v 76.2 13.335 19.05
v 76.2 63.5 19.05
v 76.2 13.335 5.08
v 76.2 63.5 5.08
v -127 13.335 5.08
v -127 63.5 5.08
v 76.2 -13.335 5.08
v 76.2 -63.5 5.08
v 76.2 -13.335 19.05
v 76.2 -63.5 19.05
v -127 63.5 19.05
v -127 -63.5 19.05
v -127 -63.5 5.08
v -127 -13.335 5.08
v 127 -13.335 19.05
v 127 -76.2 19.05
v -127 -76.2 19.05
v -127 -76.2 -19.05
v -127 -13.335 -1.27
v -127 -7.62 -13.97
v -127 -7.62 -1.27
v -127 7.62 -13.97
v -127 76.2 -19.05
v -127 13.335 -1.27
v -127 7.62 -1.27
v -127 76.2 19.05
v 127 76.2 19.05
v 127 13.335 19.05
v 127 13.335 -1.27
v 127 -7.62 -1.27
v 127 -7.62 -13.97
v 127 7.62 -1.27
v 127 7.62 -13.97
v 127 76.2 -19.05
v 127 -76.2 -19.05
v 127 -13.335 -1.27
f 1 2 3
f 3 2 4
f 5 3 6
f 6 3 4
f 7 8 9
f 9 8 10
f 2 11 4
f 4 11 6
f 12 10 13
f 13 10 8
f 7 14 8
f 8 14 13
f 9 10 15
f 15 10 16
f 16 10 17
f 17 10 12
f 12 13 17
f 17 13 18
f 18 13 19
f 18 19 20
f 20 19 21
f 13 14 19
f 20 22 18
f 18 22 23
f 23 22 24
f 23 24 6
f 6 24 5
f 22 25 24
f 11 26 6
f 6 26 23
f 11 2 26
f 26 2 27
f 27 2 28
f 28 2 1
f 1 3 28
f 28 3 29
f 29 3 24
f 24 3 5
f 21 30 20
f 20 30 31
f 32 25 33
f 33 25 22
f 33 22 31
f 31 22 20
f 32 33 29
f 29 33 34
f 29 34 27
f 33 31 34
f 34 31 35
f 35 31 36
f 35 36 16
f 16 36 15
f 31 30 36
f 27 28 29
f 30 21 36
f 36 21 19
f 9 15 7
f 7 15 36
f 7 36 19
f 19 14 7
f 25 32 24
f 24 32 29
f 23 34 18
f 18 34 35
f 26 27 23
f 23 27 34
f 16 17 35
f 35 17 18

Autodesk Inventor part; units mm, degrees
ref_plane "Work Plane1" through (-127, 50.8, 9.525) normal (0, 0, 1) x (1, 0, 0)
sketch "Sketch1" plane through (0, 0, 0) normal (0, 0, 1) x (1, 0, 0)
  line L0 (-127, -76.2) -> (127, -76.2)
  line L1 (127, -76.2) -> (127, 76.2)
  line L2 (127, 76.2) -> (-127, 76.2)
  line L3 (-127, 76.2) -> (-127, -76.2)
  line L4 (-127, -76.2) -> (127, 76.2) construction
  line L5 (127, -76.2) -> (-127, 76.2) construction
  point P0 (0, 0)
  dimension "d0" = 254
  dimension "d1" = 152.4
extrude "Extrusion1" add sketch "Sketch1" along normal mid plane 38.1
sketch "Sketch10" plane through (0, 0, 19.05) normal (0, 0, 1) x (1, 0, 0)
  line L0 (-127, -13.335) -> (127, -13.335)
  line L1 (127, -13.335) -> (127, 13.335)
  line L2 (127, 13.335) -> (-127, 13.335)
  line L3 (-127, 13.335) -> (-127, -13.335)
  line L4 (-127, -13.335) -> (127, 13.335) construction
  line L5 (127, -13.335) -> (-127, 13.335) construction
  line L6 (-127, 76.2) -> (-127, -76.2) projected
  point P0 (0, 0)
  dimension "d71" = 26.67
extrude "Extrusion7" cut sketch "Sketch10" against normal blind 20.32
ref_plane "Work Plane3" through (0, 0, 0) normal (0, 0, 1) x (1, 0, 0)
ref_plane "Work Plane4" through (0, 0, 19.05) normal (0, 0, 1) x (1, 0, 0)
sketch "Sketch11" plane through (0, 0, -1.27) normal (0, 0, 1) x (1, 0, 0)
  line L0 (-127, -7.62) -> (127, -7.62)
  line L1 (127, -7.62) -> (127, 7.62)
  line L2 (127, 7.62) -> (-127, 7.62)
  line L3 (-127, 7.62) -> (-127, -7.62)
  line L4 (-127, -7.62) -> (127, 7.62) construction
  line L5 (127, -7.62) -> (-127, 7.62) construction
  line L6 (-127, 76.2) -> (-127, 13.335) projected
  point P0 (0, 0)
  dimension "d75" = 15.24
extrude "Extrusion8" cut sketch "Sketch11" against normal blind 12.7
sketch "Sketch12" plane through (0, 0, 19.05) normal (0, 0, 1) x (1, 0, 0)
  line L0 (-127, 76.2) -> (-127, 13.335) projected
  line L1 (-127, 63.5) -> (76.2, 63.5)
  line L2 (76.2, 63.5) -> (76.2, -63.5)
  line L3 (76.2, -63.5) -> (-127, -63.5)
  line L4 (-127, -63.5) -> (-127, 63.5)
  line L5 (127, 76.2) -> (-127, 76.2) projected
  line L6 (-127, -76.2) -> (127, -76.2) projected
  point P0 (0, 0)
  dimension "d78" = 12.7
  dimension "d79" = 12.7
  dimension "d80" = 203.2
extrude "Extrusion9" cut sketch "Sketch12" against normal blind 13.97
sketch "Sketch3" plane through (0, 0, 19.05) normal (0, 0, 1) x (1, 0, 0)
  line L0 (-76.2, -12.7) -> (76.2, -12.7)
  line L1 (76.2, -12.7) -> (76.2, 12.7)
  line L2 (76.2, 12.7) -> (-76.2, 12.7)
  line L3 (-76.2, 12.7) -> (-76.2, -12.7)
  line L4 (-76.2, -12.7) -> (76.2, 12.7) construction
  line L5 (76.2, -12.7) -> (-76.2, 12.7) construction
  point P0 (0, 0)
  dimension "d7" = 25.4
  dimension "d19" = 152.4
sketch "Sketch8" plane through (0, 0, 19.05) normal (0, 0, 1) x (1, 0, 0)
  line L0 (-76.2, -12.7) -> (-76.2, 12.7) projected
  line L1 (-76.2, 0) -> (38.1, 0)
  line L2 (38.1, 0) -> (38.1, 38.1)
  line L3 (38.1, 38.1) -> (-76.2, 38.1)
  line L4 (-76.2, 38.1) -> (-76.2, 0)
  line L5 (38.1, 0) -> (38.1, -38.1)
  line L6 (38.1, -38.1) -> (-76.2, -38.1)
  line L7 (-76.2, -38.1) -> (-76.2, 0)
  point P0 (0, 0)
  dimension "d51" = 114.3
  dimension "d52" = 38.1
sketch "Sketch9" plane through (0, 0, 19.05) normal (0, 0, 1) x (1, 0, 0)
  line L0 (-127, 76.2) -> (-127, -76.2) construction
  line L1 (-127, -57.15) -> (127, -57.15) construction
  line L2 (127, 76.2) -> (127, -76.2) construction
  line L3 (-127, -57.15) -> (-127, -44.4609) construction
  point P0 (0, 0)
  point P1 (-127, 76.2)
  point P2 (-76.2, 38.1)
  point P3 (-101.6, -57.15)
  point P4 (-76.2, -57.15)
  point P5 (-50.8, -57.15)
  point P6 (-25.4, -57.15)
  point P7 (0, -57.15)
  point P8 (-101.6, -146.05)
  point P9 (-76.2, -146.05)
  point P10 (-50.8, -146.05)
  point P11 (-25.4, -146.05)
  point P12 (0, -146.05)
  point P13 (-101.6, -234.95)
  point P14 (-76.2, -234.95)
  point P15 (-50.8, -234.95)
  point P16 (-25.4, -234.95)
  point P17 (0, -234.95)
  point P18 (-101.6, -323.85)
  point P19 (-76.2, -323.85)
  point P20 (-50.8, -323.85)
  point P21 (-25.4, -323.85)
  point P22 (0, -323.85)
  point P23 (-127, -76.2)
  dimension "d55" = 25.4
  dimension "d58" = 25.4
  dimension "d61" = 88.9
properties part number "pistonHousing-8-in" material "PET Plastic"
